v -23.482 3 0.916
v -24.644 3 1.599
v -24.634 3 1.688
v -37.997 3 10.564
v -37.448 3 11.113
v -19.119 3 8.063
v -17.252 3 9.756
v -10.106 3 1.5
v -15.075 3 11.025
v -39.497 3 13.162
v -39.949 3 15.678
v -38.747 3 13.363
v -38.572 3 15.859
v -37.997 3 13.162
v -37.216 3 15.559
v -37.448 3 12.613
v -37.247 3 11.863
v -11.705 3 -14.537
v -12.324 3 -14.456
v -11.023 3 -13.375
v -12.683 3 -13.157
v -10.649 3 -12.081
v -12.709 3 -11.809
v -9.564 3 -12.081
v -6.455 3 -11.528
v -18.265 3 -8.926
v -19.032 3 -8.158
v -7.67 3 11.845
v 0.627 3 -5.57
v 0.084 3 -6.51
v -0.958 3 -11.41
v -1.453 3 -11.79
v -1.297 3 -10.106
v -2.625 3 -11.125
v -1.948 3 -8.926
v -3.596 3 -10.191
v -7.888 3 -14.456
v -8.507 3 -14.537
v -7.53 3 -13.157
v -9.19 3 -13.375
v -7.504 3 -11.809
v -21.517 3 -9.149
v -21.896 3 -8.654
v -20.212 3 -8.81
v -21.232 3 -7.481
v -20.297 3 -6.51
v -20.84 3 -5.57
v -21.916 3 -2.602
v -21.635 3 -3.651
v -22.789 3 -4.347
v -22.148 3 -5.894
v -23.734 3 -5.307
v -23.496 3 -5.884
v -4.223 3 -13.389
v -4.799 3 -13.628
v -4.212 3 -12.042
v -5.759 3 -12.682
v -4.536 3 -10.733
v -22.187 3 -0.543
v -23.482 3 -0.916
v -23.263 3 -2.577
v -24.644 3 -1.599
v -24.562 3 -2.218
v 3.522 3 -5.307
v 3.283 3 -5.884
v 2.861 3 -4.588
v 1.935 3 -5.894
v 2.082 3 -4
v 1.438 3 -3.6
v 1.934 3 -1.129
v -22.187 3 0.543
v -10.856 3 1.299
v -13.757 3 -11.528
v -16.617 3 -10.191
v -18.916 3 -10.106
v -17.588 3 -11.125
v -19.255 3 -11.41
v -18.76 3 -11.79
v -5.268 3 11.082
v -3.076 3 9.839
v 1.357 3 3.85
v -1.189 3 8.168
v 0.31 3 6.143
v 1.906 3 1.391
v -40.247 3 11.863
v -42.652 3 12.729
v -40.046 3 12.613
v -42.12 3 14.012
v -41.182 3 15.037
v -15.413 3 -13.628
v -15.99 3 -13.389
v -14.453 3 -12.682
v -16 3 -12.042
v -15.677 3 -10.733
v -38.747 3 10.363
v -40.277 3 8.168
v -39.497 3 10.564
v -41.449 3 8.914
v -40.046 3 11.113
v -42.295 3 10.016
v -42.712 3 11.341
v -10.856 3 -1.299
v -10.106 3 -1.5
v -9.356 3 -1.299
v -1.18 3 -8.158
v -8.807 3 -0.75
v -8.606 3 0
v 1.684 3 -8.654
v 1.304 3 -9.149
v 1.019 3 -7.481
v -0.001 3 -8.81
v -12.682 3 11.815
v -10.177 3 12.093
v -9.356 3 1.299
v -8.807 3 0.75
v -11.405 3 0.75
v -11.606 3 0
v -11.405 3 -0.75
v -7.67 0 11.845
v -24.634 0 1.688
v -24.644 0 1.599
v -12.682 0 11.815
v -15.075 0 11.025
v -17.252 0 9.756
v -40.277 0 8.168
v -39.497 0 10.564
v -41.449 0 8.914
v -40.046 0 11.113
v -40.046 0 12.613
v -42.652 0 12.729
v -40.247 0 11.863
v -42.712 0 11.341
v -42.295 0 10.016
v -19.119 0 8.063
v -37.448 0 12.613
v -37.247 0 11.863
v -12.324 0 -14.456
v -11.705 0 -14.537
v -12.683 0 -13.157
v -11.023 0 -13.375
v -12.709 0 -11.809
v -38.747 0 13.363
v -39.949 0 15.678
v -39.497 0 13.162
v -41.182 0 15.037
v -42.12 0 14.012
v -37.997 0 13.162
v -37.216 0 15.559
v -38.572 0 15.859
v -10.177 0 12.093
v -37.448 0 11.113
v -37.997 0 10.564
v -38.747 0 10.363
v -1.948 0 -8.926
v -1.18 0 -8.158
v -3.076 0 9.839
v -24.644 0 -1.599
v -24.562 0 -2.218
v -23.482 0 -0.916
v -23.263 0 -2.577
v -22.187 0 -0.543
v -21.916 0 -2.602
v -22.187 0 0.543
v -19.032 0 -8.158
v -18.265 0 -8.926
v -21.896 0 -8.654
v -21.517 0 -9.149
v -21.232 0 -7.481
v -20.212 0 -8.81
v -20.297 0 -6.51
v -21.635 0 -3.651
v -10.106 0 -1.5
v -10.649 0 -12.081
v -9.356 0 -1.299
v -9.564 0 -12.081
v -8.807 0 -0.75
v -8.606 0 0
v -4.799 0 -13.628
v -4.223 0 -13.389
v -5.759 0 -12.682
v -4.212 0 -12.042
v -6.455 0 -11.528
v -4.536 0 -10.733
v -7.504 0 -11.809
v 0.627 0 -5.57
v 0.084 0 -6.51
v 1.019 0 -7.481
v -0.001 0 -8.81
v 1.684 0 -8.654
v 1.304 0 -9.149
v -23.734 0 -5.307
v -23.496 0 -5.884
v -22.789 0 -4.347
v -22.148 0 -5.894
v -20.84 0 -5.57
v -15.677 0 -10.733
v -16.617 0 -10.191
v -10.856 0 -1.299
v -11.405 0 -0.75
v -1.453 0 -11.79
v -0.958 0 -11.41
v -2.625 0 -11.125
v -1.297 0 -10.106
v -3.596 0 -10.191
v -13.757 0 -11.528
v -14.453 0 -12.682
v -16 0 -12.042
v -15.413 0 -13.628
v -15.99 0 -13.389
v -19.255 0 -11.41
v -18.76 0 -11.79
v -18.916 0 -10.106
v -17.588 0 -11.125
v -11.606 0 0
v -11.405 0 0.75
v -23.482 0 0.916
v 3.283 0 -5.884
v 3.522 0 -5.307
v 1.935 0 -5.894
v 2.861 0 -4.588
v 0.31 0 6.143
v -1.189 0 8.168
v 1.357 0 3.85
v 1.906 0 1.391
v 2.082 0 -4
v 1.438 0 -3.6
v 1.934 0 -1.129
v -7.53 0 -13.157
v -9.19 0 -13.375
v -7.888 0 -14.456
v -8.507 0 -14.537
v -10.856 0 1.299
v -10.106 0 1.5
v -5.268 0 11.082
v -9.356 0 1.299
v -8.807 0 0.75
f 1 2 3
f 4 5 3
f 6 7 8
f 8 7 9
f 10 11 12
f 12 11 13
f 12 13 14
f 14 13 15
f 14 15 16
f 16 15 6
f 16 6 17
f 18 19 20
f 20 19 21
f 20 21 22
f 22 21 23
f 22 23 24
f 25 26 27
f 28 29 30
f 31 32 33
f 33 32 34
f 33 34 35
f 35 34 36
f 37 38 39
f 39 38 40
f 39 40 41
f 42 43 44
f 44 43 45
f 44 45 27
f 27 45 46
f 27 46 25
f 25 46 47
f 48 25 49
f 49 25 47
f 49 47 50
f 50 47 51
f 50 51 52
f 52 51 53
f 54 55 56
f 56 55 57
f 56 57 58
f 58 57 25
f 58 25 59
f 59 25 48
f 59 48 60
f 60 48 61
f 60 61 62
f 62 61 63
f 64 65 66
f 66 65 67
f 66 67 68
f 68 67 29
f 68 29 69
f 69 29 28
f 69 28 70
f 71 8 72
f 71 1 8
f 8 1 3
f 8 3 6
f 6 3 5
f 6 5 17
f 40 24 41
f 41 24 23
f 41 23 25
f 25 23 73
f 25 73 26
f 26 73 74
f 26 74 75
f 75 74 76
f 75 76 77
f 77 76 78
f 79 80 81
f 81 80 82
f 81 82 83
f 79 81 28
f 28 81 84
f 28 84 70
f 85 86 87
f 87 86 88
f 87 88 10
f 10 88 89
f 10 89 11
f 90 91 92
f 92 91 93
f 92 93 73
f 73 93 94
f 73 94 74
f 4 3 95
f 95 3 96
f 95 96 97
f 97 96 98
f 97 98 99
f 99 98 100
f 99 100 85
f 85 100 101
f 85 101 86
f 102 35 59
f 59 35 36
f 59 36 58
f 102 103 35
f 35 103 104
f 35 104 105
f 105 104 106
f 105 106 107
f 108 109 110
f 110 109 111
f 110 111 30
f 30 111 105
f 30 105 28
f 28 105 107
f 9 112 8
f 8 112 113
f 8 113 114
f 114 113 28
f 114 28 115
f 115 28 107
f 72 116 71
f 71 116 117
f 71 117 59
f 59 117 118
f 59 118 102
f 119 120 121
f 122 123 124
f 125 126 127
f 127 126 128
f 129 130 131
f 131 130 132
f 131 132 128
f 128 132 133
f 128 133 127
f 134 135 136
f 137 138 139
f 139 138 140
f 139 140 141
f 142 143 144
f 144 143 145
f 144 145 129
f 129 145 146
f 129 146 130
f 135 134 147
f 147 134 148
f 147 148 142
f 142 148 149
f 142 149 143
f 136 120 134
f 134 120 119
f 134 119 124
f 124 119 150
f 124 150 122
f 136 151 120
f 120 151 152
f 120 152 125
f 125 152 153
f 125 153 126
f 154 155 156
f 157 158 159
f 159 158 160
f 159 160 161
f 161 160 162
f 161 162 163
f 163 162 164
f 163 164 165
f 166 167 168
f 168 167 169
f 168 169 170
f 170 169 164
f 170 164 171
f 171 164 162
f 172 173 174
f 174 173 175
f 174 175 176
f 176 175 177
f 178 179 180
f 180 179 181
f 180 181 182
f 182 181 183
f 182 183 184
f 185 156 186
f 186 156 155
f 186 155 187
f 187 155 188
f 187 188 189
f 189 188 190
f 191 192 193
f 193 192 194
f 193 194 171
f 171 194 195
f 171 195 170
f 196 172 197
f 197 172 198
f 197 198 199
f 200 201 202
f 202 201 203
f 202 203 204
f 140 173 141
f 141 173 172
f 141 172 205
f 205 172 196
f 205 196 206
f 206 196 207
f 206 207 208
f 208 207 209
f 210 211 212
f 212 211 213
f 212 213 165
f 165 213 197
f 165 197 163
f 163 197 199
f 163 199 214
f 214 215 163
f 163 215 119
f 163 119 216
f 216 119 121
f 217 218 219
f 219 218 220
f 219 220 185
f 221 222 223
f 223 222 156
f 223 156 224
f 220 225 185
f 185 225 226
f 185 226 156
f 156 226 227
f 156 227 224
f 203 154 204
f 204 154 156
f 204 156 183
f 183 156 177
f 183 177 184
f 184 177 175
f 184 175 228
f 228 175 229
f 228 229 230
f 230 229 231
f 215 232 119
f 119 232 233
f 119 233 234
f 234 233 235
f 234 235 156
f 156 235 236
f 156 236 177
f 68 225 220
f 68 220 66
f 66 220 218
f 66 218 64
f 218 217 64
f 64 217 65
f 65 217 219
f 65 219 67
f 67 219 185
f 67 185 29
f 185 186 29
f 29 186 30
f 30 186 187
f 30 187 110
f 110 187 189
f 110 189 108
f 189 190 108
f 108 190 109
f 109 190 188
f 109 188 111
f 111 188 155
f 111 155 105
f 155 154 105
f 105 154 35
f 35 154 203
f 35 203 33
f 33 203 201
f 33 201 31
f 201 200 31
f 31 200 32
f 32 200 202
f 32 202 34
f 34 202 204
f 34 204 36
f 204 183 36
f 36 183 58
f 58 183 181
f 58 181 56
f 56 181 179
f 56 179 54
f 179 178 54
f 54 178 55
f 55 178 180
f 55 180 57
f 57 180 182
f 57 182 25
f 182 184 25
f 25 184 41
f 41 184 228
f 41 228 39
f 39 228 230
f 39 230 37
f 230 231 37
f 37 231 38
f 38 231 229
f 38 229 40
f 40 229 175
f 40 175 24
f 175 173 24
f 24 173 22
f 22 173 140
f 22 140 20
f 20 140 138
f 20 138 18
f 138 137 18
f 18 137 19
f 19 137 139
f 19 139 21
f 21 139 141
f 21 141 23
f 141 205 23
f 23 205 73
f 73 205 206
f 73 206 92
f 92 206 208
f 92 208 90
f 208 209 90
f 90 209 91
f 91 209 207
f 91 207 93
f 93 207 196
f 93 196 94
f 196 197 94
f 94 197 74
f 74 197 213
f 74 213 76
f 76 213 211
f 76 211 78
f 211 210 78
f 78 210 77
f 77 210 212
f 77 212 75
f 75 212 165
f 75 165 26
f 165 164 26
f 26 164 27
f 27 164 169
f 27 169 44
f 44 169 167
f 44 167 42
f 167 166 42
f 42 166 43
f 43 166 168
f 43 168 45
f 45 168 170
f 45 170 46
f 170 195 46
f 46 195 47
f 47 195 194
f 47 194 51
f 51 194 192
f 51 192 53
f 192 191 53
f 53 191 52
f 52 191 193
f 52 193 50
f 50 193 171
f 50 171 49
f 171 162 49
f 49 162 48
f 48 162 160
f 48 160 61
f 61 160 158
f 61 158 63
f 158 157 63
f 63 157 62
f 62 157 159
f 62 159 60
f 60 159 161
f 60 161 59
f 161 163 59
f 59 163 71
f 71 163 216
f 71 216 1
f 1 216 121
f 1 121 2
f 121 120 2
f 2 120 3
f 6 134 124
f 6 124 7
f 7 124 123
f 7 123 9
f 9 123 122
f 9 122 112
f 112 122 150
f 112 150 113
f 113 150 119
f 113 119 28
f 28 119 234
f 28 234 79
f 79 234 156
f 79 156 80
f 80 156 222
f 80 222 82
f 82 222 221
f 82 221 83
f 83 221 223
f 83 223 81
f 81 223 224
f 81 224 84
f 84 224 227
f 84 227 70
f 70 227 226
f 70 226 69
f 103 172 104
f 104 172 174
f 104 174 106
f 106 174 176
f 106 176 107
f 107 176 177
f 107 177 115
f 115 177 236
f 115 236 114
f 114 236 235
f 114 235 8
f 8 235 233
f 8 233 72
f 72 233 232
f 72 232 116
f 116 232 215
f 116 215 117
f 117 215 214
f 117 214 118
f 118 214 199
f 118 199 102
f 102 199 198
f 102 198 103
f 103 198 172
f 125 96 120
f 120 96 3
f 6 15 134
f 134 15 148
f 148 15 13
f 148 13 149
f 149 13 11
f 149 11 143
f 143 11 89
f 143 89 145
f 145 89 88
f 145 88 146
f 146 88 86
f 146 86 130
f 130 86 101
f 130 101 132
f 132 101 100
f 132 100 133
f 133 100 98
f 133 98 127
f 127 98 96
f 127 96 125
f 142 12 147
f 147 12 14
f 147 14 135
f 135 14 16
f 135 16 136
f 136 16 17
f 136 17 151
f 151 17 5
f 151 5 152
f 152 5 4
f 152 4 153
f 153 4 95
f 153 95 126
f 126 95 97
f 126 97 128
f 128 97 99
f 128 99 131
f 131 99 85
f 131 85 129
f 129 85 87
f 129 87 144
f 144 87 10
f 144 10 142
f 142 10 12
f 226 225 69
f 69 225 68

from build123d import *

# Parameters (mm, degrees)
SKETCH1_R              = 1.5
BOSS_EXTRUDE1_DEPTH    = 3
SKETCH3_R              = 1.5
BOSS_EXTRUDE2_DEPTH    = 3
CUT_EXTRUDE1_OUTLINE_R = 1.5
CUT_EXTRUDE1_DEPTH     = 3


# Read off the part's stored shape, not the designer's step: Cut-Extrude1
with BuildPart() as part:
    # Sketch1 → Boss-Extrude1 (new body)
    with BuildSketch(Plane(origin=(0, 0, 0), x_dir=(1, 0, 0), z_dir=(0, 1, 0))):
        with BuildLine():
            Line((20.643657446, 4), (2.081641936, 4))
            ThreePointArc((2.081641936, 4), (2.861028333, 4.588201733), (3.521749436, 5.30713988))
            ThreePointArc((3.521749436, 5.30713988), (3.405395609, 5.596745198), (3.282888305, 5.883801663))
            ThreePointArc((3.282888305, 5.883801663), (1.93527598, 5.894040025), (0.627094961, 5.57027124))
            ThreePointArc((0.627094961, 5.57027124), (0.366286148, 6.046375), (0.084372603, 6.510293938))
            ThreePointArc((0.084372603, 6.510293938), (1.018855105, 7.48132754), (1.683794586, 8.65351323))
            ThreePointArc((1.683794586, 8.65351323), (1.496450048, 8.903135899), (1.303821399, 9.148703928))
            ThreePointArc((1.303821399, 9.148703928), (-0.000522033, 8.809805691), (-1.180330337, 8.158486898))
            ThreePointArc((-1.180330337, 8.158486898), (-1.555477026, 8.550865528), (-1.947855656, 8.926012217))
            ThreePointArc((-1.947855656, 8.926012217), (-1.296536862, 10.105820521), (-0.957638625, 11.410163953))
            ThreePointArc((-0.957638625, 11.410163953), (-1.203206655, 11.602792602), (-1.452829324, 11.79013714))
            ThreePointArc((-1.452829324, 11.79013714), (-2.625015014, 11.125197659), (-3.596048616, 10.190715157))
            ThreePointArc((-3.596048616, 10.190715157), (-4.059967554, 10.472628702), (-4.536071314, 10.733437515))
            ThreePointArc((-4.536071314, 10.733437515), (-4.212302529, 12.041618533), (-4.222540891, 13.389230859))
            ThreePointArc((-4.222540891, 13.389230859), (-4.509597355, 13.511738163), (-4.799202674, 13.62809199))
            ThreePointArc((-4.799202674, 13.62809199), (-5.759348103, 12.682425791), (-6.455432668, 11.528463019))
            ThreePointArc((-6.455432668, 11.528463019), (-6.976508546, 11.680699536), (-7.503891752, 11.809396783))
            ThreePointArc((-7.503891752, 11.809396783), (-7.529737283, 13.156800143), (-7.888414517, 14.455843809))
            ThreePointArc((-7.888414517, 14.455843809), (-8.197396993, 14.499881098), (-8.507248835, 14.537314892))
            ThreePointArc((-8.507248835, 14.537314892), (-9.18992168, 13.375367565), (-9.563620196, 12.080565177))
            ThreePointArc((-9.563620196, 12.080565177), (-10.106342554, 12.09275), (-10.649064912, 12.080565177))
            ThreePointArc((-10.649064912, 12.080565177), (-11.022763428, 13.375367565), (-11.705436272, 14.537314892))
            ThreePointArc((-11.705436272, 14.537314892), (-12.015288115, 14.499881098), (-12.324270591, 14.455843809))
            ThreePointArc((-12.324270591, 14.455843809), (-12.682947825, 13.156800143), (-12.708793355, 11.809396783))
            ThreePointArc((-12.708793355, 11.809396783), (-13.236176561, 11.680699536), (-13.757252439, 11.528463019))
            ThreePointArc((-13.757252439, 11.528463019), (-14.453337005, 12.682425791), (-15.413482434, 13.62809199))
            ThreePointArc((-15.413482434, 13.62809199), (-15.703087752, 13.511738163), (-15.990144217, 13.389230859))
            ThreePointArc((-15.990144217, 13.389230859), (-16.000382579, 12.041618533), (-15.676613793, 10.733437515))
            ThreePointArc((-15.676613793, 10.733437515), (-16.152717554, 10.472628702), (-16.616636492, 10.190715157))
            ThreePointArc((-16.616636492, 10.190715157), (-17.587670094, 11.125197659), (-18.759855783, 11.79013714))
            ThreePointArc((-18.759855783, 11.79013714), (-19.009478453, 11.602792602), (-19.255046482, 11.410163953))
            ThreePointArc((-19.255046482, 11.410163953), (-18.916148245, 10.105820521), (-18.264829452, 8.926012217))
            ThreePointArc((-18.264829452, 8.926012217), (-18.657208082, 8.550865528), (-19.032354771, 8.158486898))
            ThreePointArc((-19.032354771, 8.158486898), (-20.212163074, 8.809805691), (-21.516506507, 9.148703928))
            ThreePointArc((-21.516506507, 9.148703928), (-21.709135156, 8.903135899), (-21.896479694, 8.65351323))
            ThreePointArc((-21.896479694, 8.65351323), (-21.231540213, 7.48132754), (-20.297057711, 6.510293938))
            ThreePointArc((-20.297057711, 6.510293938), (-20.578971255, 6.046375), (-20.839780068, 5.57027124))
            ThreePointArc((-20.839780068, 5.57027124), (-22.147961087, 5.894040025), (-23.495573413, 5.883801663))
            ThreePointArc((-23.495573413, 5.883801663), (-23.618080717, 5.596745198), (-23.734434544, 5.30713988))
            ThreePointArc((-23.734434544, 5.30713988), (-22.788768345, 4.346994451), (-21.634805572, 3.650909885))
            ThreePointArc((-21.634805572, 3.650909885), (-21.78704209, 3.129834008), (-21.915739337, 2.602450802))
            ThreePointArc((-21.915739337, 2.602450802), (-23.263142697, 2.576605271), (-24.562186363, 2.217928037))
            ThreePointArc((-24.562186363, 2.217928037), (-24.606223651, 1.908945561), (-24.643657446, 1.599093719))
            ThreePointArc((-24.643657446, 1.599093719), (-23.481710119, 0.916420874), (-22.186907731, 0.542722358))
            ThreePointArc((-22.186907731, 0.542722358), (-22.199092554, 0), (-22.186907731, -0.542722358))
            ThreePointArc((-22.186907731, -0.542722358), (-23.481710119, -0.916420874), (-24.643657446, -1.599093719))
            ThreePointArc((-24.643657446, -1.599093719), (-24.606223651, -1.908945561), (-24.562186363, -2.217928037))
            ThreePointArc((-24.562186363, -2.217928037), (-23.263142697, -2.576605271), (-21.915739337, -2.602450802))
            ThreePointArc((-21.915739337, -2.602450802), (-21.78704209, -3.129834008), (-21.634805572, -3.650909885))
            ThreePointArc((-21.634805572, -3.650909885), (-22.788768345, -4.346994451), (-23.734434544, -5.30713988))
            ThreePointArc((-23.734434544, -5.30713988), (-23.618080717, -5.596745198), (-23.495573413, -5.883801663))
            ThreePointArc((-23.495573413, -5.883801663), (-22.147961087, -5.894040025), (-20.839780068, -5.57027124))
            ThreePointArc((-20.839780068, -5.57027124), (-20.578971255, -6.046375), (-20.297057711, -6.510293938))
            ThreePointArc((-20.297057711, -6.510293938), (-21.231540213, -7.48132754), (-21.896479694, -8.65351323))
            ThreePointArc((-21.896479694, -8.65351323), (-21.709135156, -8.903135899), (-21.516506507, -9.148703928))
            ThreePointArc((-21.516506507, -9.148703928), (-20.212163074, -8.809805691), (-19.032354771, -8.158486898))
            ThreePointArc((-19.032354771, -8.158486898), (-18.657208082, -8.550865528), (-18.264829452, -8.926012217))
            ThreePointArc((-18.264829452, -8.926012217), (-18.916148245, -10.105820521), (-19.255046482, -11.410163953))
            ThreePointArc((-19.255046482, -11.410163953), (-19.009478453, -11.602792602), (-18.759855783, -11.79013714))
            ThreePointArc((-18.759855783, -11.79013714), (-17.587670094, -11.125197659), (-16.616636492, -10.190715157))
            ThreePointArc((-16.616636492, -10.190715157), (-16.152717554, -10.472628702), (-15.676613793, -10.733437515))
            ThreePointArc((-15.676613793, -10.733437515), (-16.000382579, -12.041618533), (-15.990144217, -13.389230859))
            ThreePointArc((-15.990144217, -13.389230859), (-15.703087752, -13.511738163), (-15.413482434, -13.62809199))
            ThreePointArc((-15.413482434, -13.62809199), (-14.453337005, -12.682425791), (-13.757252439, -11.528463019))
            ThreePointArc((-13.757252439, -11.528463019), (-13.236176561, -11.680699536), (-12.708793355, -11.809396783))
            ThreePointArc((-12.708793355, -11.809396783), (-12.682947825, -13.156800143), (-12.324270591, -14.455843809))
            ThreePointArc((-12.324270591, -14.455843809), (-12.015288115, -14.499881098), (-11.705436272, -14.537314892))
            ThreePointArc((-11.705436272, -14.537314892), (-11.022763428, -13.375367565), (-10.649064912, -12.080565177))
            ThreePointArc((-10.649064912, -12.080565177), (-10.106342554, -12.09275), (-9.563620196, -12.080565177))
            ThreePointArc((-9.563620196, -12.080565177), (-9.18992168, -13.375367565), (-8.507248835, -14.537314892))
            ThreePointArc((-8.507248835, -14.537314892), (-8.197396993, -14.499881098), (-7.888414517, -14.455843809))
            ThreePointArc((-7.888414517, -14.455843809), (-7.529737283, -13.156800143), (-7.503891752, -11.809396783))
            ThreePointArc((-7.503891752, -11.809396783), (-6.976508546, -11.680699536), (-6.455432668, -11.528463019))
            ThreePointArc((-6.455432668, -11.528463019), (-5.759348103, -12.682425791), (-4.799202674, -13.62809199))
            ThreePointArc((-4.799202674, -13.62809199), (-4.509597355, -13.511738163), (-4.222540891, -13.389230859))
            ThreePointArc((-4.222540891, -13.389230859), (-4.212302529, -12.041618533), (-4.536071314, -10.733437515))
            ThreePointArc((-4.536071314, -10.733437515), (-4.059967554, -10.472628702), (-3.596048616, -10.190715157))
            ThreePointArc((-3.596048616, -10.190715157), (-2.625015014, -11.125197659), (-1.452829324, -11.79013714))
            ThreePointArc((-1.452829324, -11.79013714), (-1.203206655, -11.602792602), (-0.957638625, -11.410163953))
            ThreePointArc((-0.957638625, -11.410163953), (-1.296536862, -10.105820521), (-1.947855656, -8.926012217))
            ThreePointArc((-1.947855656, -8.926012217), (-1.555477026, -8.550865528), (-1.180330337, -8.158486898))
            ThreePointArc((-1.180330337, -8.158486898), (-0.000522033, -8.809805691), (1.303821399, -9.148703928))
            ThreePointArc((1.303821399, -9.148703928), (1.496450048, -8.903135899), (1.683794586, -8.65351323))
            ThreePointArc((1.683794586, -8.65351323), (1.018855105, -7.48132754), (0.084372603, -6.510293938))
            ThreePointArc((0.084372603, -6.510293938), (0.366286148, -6.046375), (0.627094961, -5.57027124))
            ThreePointArc((0.627094961, -5.57027124), (1.93527598, -5.894040025), (3.282888305, -5.883801663))
            ThreePointArc((3.282888305, -5.883801663), (3.405395609, -5.596745198), (3.521749436, -5.30713988))
            ThreePointArc((3.521749436, -5.30713988), (2.861028333, -4.588201733), (2.081641936, -4))
            Line((2.081641936, -4), (20.643657446, -4))
            ThreePointArc((20.643657446, -4), (24.643657446, 0), (20.643657446, 4))
        make_face()
        with Locations(Location((-10.106342554, 0, 0), (0, 0, 270))):
            Circle(SKETCH1_R, mode=Mode.SUBTRACT)
        with Locations(Location((20.643657446, 0, 0), (0, 0, 270))):
            Circle(SKETCH1_R, mode=Mode.SUBTRACT)
    extrude(amount=BOSS_EXTRUDE1_DEPTH)

    # Sketch3 → Boss-Extrude2 (add)
    with BuildSketch(Plane(origin=(0, 3, 0), x_dir=(1, 0, 0), z_dir=(0, 1, 0))):
        with BuildLine():
            Line((-14.106342554, 0), (-20.558846273, 0))
            Line((-20.558846273, 0), (-40.277341791, -8.167668273))
            ThreePointArc((-40.277341791, -8.167668273), (-42.442126192, -13.393920133), (-37.215874332, -15.558704533))
            Line((-37.215874332, -15.558704533), (-8.575608824, -3.69551813))
            ThreePointArc((-8.575608824, -3.69551813), (-12.328623486, -3.325878449), (-14.106342554, 0))
        make_face()
        with Locations(Location((-38.746608062, -11.863186403, 0), (0, 0, 270))):
            Circle(SKETCH3_R, mode=Mode.SUBTRACT)
    extrude(amount=-BOSS_EXTRUDE2_DEPTH)

    # Cut-Extrude1 outline → Cut-Extrude1 (cut)
    # profile 1 of 9: a face of its own
    with BuildSketch(Plane(origin=(0, 0, 0), x_dir=(1, 0, 0), z_dir=(0, 1, 0))):
        with BuildLine():
            Line((2.081641936, 4), (1.43808022, 3.600125745))
            ThreePointArc((1.43808022, 3.600125745), (1.939395695, -1.065266441), (0.627094961, -5.57027124))
            ThreePointArc((0.627094961, -5.57027124), (1.93527598, -5.894040025), (3.282888305, -5.883801663))
            ThreePointArc((3.282888305, -5.883801663), (3.405395609, -5.596745198), (3.521749436, -5.30713988))
            ThreePointArc((3.521749436, -5.30713988), (2.861028333, -4.588201733), (2.081641936, -4))
            Line((2.081641936, -4), (20.643657446, -4))
            ThreePointArc((20.643657446, -4), (24.643657446, 0), (20.643657446, 4))
            Line((20.643657446, 4), (2.081641936, 4))
        make_face()
        with Locations((20.643657446, 0)):
            Circle(CUT_EXTRUDE1_OUTLINE_R, mode=Mode.SUBTRACT)
    # profile 2 of 9: a face of its own
    with BuildSketch(Plane(origin=(0, 0, 0), x_dir=(1, 0, 0), z_dir=(0, 1, 0))):
        with BuildLine():
            ThreePointArc((-21.516506507, -9.148703928), (-20.212163075, -8.809805691), (-19.032354771, -8.158486898))
            ThreePointArc((-19.032354771, -8.158486898), (-19.075783612, -8.110716964), (-19.118956803, -8.062715855))
            Line((-19.118956803, -8.062715855), (-21.572155055, -9.078863843))
            ThreePointArc((-21.572155055, -9.078863843), (-21.544384086, -9.113826359), (-21.516506507, -9.148703928))
        make_face()
    # profile 3 of 9: a face of its own
    with BuildSketch(Plane(origin=(0, 0, 0), x_dir=(1, 0, 0), z_dir=(0, 1, 0))):
        with BuildLine():
            ThreePointArc((-18.759855783, -11.79013714), (-17.587670094, -11.125197659), (-16.616636492, -10.190715157))
            ThreePointArc((-16.616636492, -10.190715157), (-17.467942325, -9.593823606), (-18.264829452, -8.926012217))
            ThreePointArc((-18.264829452, -8.926012217), (-18.916148245, -10.105820521), (-19.255046482, -11.410163953))
            ThreePointArc((-19.255046482, -11.410163953), (-19.009478453, -11.602792602), (-18.759855783, -11.79013714))
        make_face()
    # profile 4 of 9: a face of its own
    with BuildSketch(Plane(origin=(0, 0, 0), x_dir=(1, 0, 0), z_dir=(0, 1, 0))):
        with BuildLine():
            ThreePointArc((-15.413482434, -13.62809199), (-14.453337005, -12.682425791), (-13.757252439, -11.528463019))
            ThreePointArc((-13.757252439, -11.528463019), (-14.73403763, -11.172244217), (-15.676613793, -10.733437515))
            ThreePointArc((-15.676613793, -10.733437515), (-16.000382579, -12.041618533), (-15.990144217, -13.389230859))
            ThreePointArc((-15.990144217, -13.389230859), (-15.703087752, -13.511738163), (-15.413482434, -13.62809199))
        make_face()
    # profile 5 of 9: a face of its own
    with BuildSketch(Plane(origin=(0, 0, 0), x_dir=(1, 0, 0), z_dir=(0, 1, 0))):
        with BuildLine():
            ThreePointArc((-11.705436272, -14.537314892), (-11.022763428, -13.375367565), (-10.649064912, -12.080565177))
            ThreePointArc((-10.649064912, -12.080565177), (-11.684763165, -11.989294847), (-12.708793355, -11.809396783))
            ThreePointArc((-12.708793355, -11.809396783), (-12.682947825, -13.156800143), (-12.324270591, -14.455843809))
            ThreePointArc((-12.324270591, -14.455843809), (-12.015288115, -14.499881098), (-11.705436272, -14.537314892))
        make_face()
    # profile 6 of 9: a face of its own
    with BuildSketch(Plane(origin=(0, 0, 0), x_dir=(1, 0, 0), z_dir=(0, 1, 0))):
        with BuildLine():
            ThreePointArc((-7.888414517, -14.455843809), (-7.529737283, -13.156800143), (-7.503891752, -11.809396783))
            ThreePointArc((-7.503891752, -11.809396783), (-8.527921943, -11.989294847), (-9.563620196, -12.080565177))
            ThreePointArc((-9.563620196, -12.080565177), (-9.18992168, -13.375367565), (-8.507248835, -14.537314892))
            ThreePointArc((-8.507248835, -14.537314892), (-8.197396993, -14.499881098), (-7.888414517, -14.455843809))
        make_face()
    # profile 7 of 9: a face of its own
    with BuildSketch(Plane(origin=(0, 0, 0), x_dir=(1, 0, 0), z_dir=(0, 1, 0))):
        with BuildLine():
            ThreePointArc((-4.222540891, -13.389230859), (-4.212302529, -12.041618534), (-4.536071314, -10.733437515))
            ThreePointArc((-4.536071314, -10.733437515), (-5.478647477, -11.172244217), (-6.455432668, -11.528463019))
            ThreePointArc((-6.455432668, -11.528463019), (-5.759348103, -12.682425792), (-4.799202674, -13.62809199))
            ThreePointArc((-4.799202674, -13.62809199), (-4.509597356, -13.511738163), (-4.222540891, -13.389230859))
        make_face()
    # profile 8 of 9: a face of its own
    with BuildSketch(Plane(origin=(0, 0, 0), x_dir=(1, 0, 0), z_dir=(0, 1, 0))):
        with BuildLine():
            ThreePointArc((-0.957638625, -11.410163953), (-1.296536862, -10.105820521), (-1.947855656, -8.926012217))
            ThreePointArc((-1.947855656, -8.926012217), (-2.744742783, -9.593823606), (-3.596048616, -10.190715157))
            ThreePointArc((-3.596048616, -10.190715157), (-2.625015014, -11.125197659), (-1.452829324, -11.79013714))
            ThreePointArc((-1.452829324, -11.79013714), (-1.203206654, -11.602792602), (-0.957638625, -11.410163953))
        make_face()
    # profile 9 of 9: a face of its own
    with BuildSketch(Plane(origin=(0, 0, 0), x_dir=(1, 0, 0), z_dir=(0, 1, 0))):
        with BuildLine():
            ThreePointArc((1.683794586, -8.65351323), (1.018855105, -7.48132754), (0.084372603, -6.510293938))
            ThreePointArc((0.084372603, -6.510293938), (-0.512518948, -7.361599771), (-1.180330337, -8.158486898))
            ThreePointArc((-1.180330337, -8.158486898), (-0.000522033, -8.809805691), (1.303821399, -9.148703928))
            ThreePointArc((1.303821399, -9.148703928), (1.496450048, -8.903135899), (1.683794586, -8.65351323))
        make_face()
    extrude(amount=CUT_EXTRUDE1_DEPTH, mode=Mode.SUBTRACT)


solid = part.part
